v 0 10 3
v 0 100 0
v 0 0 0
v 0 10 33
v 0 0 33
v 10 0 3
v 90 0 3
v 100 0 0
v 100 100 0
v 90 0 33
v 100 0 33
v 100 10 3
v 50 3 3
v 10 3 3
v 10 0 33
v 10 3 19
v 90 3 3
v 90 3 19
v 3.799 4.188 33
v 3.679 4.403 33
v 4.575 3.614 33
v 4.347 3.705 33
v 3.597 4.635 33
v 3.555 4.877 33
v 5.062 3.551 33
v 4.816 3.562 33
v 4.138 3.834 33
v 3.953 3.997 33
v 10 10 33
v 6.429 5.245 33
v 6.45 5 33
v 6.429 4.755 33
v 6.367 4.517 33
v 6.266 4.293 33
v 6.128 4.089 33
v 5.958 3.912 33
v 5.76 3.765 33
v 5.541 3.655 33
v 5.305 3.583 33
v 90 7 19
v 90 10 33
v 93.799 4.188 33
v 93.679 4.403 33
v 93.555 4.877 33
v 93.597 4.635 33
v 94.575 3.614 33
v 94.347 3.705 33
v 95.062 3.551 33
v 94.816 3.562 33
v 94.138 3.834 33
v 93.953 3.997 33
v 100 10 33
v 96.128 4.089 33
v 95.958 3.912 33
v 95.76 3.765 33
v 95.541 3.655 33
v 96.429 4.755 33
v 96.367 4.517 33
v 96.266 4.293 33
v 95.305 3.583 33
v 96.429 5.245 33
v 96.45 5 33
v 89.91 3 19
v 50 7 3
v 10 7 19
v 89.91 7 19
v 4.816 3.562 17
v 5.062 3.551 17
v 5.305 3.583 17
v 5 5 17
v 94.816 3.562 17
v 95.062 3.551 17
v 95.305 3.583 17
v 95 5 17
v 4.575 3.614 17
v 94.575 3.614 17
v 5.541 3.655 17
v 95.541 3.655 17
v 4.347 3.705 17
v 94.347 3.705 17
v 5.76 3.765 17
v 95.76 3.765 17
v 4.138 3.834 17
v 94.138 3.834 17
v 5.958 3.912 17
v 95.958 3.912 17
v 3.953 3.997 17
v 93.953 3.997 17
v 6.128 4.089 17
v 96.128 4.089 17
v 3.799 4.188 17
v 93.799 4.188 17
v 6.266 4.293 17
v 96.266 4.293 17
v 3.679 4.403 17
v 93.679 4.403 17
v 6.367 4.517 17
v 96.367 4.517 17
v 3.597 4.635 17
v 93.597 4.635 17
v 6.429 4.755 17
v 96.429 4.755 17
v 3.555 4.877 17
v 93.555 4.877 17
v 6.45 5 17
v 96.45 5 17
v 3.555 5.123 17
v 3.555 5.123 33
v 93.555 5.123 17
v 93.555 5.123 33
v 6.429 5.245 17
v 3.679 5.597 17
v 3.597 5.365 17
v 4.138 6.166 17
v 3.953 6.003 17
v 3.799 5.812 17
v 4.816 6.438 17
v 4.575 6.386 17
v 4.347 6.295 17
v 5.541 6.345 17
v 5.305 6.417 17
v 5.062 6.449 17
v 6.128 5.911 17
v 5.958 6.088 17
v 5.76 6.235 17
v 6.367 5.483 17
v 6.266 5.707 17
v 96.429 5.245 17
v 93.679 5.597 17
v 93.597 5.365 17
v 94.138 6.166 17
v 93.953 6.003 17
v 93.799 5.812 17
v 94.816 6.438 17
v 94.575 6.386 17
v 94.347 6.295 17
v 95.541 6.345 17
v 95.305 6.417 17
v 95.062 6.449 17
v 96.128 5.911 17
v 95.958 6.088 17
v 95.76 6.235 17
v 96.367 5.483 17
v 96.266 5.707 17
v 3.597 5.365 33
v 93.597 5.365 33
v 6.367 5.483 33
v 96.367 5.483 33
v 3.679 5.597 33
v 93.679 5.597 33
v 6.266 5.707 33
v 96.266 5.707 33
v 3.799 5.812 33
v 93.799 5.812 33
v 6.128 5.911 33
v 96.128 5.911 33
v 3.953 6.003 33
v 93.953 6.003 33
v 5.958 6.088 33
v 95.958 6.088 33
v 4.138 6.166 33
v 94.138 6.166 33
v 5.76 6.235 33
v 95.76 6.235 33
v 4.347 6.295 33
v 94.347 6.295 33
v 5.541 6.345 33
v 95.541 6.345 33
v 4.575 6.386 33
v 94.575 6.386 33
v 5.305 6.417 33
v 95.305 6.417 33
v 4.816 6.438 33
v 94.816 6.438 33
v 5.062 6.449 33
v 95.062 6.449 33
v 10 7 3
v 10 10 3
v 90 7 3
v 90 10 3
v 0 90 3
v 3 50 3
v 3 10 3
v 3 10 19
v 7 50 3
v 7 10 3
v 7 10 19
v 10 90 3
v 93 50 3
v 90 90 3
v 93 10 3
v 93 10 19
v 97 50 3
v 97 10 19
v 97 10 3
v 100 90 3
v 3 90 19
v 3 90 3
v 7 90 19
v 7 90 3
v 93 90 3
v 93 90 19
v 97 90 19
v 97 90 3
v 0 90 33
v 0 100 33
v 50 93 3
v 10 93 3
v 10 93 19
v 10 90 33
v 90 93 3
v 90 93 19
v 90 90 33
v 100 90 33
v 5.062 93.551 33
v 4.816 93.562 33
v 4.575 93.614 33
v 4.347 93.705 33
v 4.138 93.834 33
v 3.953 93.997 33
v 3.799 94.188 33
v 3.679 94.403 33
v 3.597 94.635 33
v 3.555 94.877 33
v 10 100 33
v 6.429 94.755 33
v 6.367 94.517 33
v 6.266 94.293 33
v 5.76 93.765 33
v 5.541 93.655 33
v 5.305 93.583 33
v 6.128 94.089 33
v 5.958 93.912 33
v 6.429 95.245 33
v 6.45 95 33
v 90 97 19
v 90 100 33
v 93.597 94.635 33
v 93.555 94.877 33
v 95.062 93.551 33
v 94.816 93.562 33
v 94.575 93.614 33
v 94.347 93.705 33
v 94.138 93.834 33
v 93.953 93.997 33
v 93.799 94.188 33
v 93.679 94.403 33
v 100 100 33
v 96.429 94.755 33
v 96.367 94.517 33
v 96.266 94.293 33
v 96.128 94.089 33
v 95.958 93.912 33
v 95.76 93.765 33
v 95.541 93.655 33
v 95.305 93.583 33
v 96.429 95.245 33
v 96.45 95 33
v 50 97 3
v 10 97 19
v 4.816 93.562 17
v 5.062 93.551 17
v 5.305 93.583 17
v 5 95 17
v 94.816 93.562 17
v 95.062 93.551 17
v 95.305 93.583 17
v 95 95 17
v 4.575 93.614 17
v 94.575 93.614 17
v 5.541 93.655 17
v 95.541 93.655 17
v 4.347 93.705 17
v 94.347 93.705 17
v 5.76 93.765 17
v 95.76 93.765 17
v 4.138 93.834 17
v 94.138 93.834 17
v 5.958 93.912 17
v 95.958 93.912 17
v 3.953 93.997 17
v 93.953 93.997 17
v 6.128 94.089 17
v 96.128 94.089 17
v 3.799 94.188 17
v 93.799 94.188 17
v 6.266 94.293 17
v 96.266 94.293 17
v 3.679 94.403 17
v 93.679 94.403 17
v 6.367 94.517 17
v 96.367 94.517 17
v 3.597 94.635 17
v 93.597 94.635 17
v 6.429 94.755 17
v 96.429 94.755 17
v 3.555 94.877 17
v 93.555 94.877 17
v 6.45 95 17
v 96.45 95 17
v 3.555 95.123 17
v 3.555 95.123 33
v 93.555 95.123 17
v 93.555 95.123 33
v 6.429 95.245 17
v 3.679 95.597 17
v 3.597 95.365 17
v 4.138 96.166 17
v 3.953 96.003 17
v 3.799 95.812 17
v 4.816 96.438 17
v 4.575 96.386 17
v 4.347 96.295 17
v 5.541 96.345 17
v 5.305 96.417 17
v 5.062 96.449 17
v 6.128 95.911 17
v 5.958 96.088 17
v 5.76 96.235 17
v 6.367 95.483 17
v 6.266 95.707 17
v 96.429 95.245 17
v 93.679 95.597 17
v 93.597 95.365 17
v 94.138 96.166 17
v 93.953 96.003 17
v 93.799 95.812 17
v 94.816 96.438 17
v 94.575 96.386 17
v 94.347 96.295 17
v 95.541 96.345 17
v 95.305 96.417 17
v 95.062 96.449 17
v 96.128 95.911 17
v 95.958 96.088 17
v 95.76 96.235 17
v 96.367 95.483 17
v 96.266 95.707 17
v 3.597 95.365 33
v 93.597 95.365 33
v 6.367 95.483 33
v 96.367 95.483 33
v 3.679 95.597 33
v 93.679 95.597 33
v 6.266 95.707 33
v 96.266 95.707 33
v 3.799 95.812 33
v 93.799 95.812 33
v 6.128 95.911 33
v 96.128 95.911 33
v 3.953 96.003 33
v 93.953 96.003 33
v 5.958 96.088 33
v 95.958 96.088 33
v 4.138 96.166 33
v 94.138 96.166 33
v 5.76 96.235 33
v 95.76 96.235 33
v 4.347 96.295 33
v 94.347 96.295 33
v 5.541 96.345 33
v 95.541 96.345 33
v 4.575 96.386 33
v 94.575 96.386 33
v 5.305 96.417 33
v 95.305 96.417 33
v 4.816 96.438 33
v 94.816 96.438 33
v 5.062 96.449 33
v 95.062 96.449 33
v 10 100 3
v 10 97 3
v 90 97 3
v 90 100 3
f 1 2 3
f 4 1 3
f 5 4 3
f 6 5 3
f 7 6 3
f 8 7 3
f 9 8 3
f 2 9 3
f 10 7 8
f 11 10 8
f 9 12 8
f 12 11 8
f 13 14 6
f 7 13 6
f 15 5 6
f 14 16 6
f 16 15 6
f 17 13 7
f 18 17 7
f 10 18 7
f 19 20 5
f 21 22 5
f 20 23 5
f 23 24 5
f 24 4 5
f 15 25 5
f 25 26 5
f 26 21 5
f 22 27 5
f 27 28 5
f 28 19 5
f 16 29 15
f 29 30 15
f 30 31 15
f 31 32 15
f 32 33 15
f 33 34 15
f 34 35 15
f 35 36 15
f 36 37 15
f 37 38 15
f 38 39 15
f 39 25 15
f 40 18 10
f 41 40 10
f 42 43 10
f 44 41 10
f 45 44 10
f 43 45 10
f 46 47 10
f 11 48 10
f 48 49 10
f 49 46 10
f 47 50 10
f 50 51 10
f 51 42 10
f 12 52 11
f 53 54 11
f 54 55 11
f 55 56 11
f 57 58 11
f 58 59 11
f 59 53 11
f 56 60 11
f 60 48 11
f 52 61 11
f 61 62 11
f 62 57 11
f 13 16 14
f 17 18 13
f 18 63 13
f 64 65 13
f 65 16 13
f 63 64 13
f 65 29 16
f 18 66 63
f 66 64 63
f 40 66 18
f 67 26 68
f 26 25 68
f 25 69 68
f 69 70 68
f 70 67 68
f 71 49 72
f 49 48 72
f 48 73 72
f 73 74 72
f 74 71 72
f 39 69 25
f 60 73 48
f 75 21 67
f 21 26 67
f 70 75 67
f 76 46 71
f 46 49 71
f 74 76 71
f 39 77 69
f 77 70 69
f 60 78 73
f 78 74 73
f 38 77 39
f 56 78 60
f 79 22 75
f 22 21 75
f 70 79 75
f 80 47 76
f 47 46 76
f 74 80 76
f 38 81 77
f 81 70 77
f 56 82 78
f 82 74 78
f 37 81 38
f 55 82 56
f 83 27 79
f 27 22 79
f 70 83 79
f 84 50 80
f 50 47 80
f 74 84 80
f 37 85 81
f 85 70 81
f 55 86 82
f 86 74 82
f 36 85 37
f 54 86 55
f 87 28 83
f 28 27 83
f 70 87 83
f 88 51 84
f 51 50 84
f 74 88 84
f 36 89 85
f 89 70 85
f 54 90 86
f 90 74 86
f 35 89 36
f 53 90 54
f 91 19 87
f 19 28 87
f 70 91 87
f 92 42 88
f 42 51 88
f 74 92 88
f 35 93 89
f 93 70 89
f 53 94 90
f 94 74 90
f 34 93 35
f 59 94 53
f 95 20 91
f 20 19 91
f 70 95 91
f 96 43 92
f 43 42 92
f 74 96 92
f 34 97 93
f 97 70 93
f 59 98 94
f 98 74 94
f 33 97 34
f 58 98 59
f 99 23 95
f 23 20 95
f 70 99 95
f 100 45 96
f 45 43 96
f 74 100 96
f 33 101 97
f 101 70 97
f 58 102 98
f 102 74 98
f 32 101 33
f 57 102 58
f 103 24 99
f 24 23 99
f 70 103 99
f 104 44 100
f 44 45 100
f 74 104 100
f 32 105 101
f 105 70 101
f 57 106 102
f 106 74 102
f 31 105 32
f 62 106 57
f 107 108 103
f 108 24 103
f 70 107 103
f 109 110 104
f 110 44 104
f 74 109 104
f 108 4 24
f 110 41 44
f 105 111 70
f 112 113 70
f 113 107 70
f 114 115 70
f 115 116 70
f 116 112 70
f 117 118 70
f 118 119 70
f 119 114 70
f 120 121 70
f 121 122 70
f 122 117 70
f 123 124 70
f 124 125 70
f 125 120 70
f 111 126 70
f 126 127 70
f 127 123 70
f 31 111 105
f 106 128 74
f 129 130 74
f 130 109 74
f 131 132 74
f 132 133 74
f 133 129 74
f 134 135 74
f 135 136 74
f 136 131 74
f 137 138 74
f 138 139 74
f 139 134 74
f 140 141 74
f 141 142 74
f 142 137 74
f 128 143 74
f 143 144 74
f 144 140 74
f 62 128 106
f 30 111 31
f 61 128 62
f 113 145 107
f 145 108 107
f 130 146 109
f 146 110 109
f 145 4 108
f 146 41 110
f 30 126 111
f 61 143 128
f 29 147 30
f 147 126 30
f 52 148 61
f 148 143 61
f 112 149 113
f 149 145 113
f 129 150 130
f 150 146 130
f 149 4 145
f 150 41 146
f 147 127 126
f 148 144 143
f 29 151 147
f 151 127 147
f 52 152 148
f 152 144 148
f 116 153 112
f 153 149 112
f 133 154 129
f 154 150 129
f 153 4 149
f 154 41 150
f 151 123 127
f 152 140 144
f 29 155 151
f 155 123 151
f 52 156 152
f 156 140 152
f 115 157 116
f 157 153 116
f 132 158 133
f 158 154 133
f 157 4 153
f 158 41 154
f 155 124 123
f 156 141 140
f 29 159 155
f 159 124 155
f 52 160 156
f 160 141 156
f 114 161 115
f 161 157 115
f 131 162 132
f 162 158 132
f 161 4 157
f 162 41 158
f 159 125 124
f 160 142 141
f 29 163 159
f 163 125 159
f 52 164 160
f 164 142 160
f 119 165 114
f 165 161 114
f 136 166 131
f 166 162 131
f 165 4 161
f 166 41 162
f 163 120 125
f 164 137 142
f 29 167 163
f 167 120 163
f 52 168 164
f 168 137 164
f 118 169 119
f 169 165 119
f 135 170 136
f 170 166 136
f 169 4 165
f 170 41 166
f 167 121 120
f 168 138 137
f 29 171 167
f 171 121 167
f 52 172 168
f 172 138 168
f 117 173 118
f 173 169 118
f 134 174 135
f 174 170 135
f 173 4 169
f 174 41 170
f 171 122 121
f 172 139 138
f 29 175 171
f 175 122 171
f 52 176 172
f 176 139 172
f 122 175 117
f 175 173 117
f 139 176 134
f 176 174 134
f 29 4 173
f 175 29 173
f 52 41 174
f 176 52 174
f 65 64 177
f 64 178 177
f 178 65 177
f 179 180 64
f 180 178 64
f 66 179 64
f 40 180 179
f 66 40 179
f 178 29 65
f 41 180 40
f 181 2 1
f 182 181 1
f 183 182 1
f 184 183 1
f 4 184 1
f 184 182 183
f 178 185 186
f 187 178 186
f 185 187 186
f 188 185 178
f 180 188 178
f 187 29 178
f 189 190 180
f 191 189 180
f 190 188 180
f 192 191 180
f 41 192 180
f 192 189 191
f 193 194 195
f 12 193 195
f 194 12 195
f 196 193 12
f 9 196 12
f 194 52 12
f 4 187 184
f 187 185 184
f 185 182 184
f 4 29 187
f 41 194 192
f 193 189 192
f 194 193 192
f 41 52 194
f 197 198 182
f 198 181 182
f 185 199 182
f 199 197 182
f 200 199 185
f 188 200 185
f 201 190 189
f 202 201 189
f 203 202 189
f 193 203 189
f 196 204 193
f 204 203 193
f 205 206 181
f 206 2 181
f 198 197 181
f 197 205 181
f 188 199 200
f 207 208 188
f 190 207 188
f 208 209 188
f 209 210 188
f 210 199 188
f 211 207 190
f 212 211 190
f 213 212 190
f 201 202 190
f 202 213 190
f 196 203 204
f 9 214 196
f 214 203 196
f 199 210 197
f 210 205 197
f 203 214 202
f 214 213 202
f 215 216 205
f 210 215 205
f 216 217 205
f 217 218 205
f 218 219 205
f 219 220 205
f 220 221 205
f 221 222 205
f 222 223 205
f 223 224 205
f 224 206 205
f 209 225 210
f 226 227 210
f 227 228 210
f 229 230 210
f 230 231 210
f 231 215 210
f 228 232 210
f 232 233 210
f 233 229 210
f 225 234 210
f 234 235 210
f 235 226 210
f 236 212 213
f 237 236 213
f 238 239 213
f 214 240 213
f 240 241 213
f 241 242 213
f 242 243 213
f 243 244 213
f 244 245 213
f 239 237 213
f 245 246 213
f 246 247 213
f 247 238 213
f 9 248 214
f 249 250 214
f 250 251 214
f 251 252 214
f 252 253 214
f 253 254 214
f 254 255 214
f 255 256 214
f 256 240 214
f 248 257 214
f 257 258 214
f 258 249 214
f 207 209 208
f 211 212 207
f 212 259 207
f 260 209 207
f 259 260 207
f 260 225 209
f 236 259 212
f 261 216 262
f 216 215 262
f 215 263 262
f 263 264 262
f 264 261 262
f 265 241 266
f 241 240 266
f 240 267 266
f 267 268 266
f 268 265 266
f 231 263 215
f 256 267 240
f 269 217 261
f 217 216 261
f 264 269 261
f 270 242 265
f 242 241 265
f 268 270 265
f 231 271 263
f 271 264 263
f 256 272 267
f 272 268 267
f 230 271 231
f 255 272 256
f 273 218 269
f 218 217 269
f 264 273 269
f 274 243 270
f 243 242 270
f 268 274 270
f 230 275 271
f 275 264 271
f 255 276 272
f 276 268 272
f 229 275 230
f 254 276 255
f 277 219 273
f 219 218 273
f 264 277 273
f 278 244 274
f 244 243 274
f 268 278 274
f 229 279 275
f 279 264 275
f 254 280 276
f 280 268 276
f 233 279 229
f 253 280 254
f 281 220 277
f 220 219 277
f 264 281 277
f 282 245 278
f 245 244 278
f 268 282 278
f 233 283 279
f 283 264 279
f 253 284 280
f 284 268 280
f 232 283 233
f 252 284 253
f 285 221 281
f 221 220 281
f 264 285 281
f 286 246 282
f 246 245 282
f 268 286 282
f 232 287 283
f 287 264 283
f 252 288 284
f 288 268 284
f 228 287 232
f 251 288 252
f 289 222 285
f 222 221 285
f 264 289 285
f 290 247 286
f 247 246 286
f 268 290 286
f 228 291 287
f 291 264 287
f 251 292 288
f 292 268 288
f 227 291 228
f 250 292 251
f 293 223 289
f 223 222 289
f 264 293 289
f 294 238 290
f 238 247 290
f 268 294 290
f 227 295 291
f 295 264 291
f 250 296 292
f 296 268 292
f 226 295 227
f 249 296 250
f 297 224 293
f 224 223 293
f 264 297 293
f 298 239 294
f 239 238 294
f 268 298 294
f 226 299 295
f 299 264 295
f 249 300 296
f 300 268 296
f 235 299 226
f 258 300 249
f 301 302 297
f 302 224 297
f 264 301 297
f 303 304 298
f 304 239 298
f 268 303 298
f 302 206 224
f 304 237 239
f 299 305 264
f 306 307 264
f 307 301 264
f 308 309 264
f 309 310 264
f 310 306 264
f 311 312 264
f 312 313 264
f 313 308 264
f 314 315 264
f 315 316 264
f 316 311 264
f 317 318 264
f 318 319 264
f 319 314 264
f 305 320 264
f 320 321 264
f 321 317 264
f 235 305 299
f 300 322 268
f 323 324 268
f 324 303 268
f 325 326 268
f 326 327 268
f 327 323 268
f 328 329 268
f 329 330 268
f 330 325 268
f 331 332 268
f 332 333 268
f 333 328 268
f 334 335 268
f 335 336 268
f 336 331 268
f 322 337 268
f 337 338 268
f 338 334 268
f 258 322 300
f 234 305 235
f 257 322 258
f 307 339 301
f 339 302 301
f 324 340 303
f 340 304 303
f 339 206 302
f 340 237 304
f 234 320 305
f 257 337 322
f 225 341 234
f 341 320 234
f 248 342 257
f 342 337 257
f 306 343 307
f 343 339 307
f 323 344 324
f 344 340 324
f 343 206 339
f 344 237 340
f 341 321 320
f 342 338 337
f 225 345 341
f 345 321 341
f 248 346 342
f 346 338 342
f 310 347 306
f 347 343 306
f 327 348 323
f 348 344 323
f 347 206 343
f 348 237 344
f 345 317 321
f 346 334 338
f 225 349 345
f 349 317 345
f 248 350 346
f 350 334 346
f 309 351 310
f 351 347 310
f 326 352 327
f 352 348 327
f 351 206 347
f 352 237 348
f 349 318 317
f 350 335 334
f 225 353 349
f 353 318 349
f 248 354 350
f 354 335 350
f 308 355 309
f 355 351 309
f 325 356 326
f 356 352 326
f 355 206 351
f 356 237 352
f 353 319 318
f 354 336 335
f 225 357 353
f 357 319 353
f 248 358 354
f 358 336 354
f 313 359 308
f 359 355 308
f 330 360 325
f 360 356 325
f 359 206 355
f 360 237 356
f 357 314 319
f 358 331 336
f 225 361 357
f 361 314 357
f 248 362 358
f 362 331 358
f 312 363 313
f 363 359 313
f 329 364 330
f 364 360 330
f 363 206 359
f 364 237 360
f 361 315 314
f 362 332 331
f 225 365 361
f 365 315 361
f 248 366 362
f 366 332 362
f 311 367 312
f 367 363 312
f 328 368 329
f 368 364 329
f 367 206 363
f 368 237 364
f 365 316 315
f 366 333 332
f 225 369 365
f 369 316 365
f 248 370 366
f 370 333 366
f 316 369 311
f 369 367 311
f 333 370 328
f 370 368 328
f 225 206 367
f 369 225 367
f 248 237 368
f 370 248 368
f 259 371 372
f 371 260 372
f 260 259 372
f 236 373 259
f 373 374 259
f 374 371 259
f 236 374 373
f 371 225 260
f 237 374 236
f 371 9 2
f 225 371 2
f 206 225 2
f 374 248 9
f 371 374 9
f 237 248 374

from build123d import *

# Parameters (mm, degrees)
EXTRUDE_3_DEPTH     = 3
SKETCH_1_4_W        = 10
SKETCH_1_4_H        = 10
EXTRUDE_4_DEPTH     = 33
CUT_EXTRUDE_1_DEPTH = 16
CUT_EXTRUDE_2_DEPTH = 16
CUT_EXTRUDE_3_DEPTH = 16
CUT_EXTRUDE_4_DEPTH = 16
SKETCH_7_W          = 4
SKETCH_7_H          = 80
SKETCH_7_W_2        = 80
SKETCH_7_H_2        = 4
EXTRUDE_5_DEPTH     = 16
CUT_EXTRUDE_5_DEPTH = 16
CUT_EXTRUDE_6_DEPTH = 16
CUT_EXTRUDE_7_DEPTH = 16
CUT_EXTRUDE_8_DEPTH = 16


with BuildPart() as part:
    # 草图1 → 凸台-拉伸3 (new body)
    with BuildSketch(Plane.XY):
        Polygon((10, 10), (10, 0), (90, 0), (90, 10), (100, 10), (100, 90), (90, 90), (90, 100), (10, 100), (10, 90), (0, 90), (0, 10), align=None)
    extrude(amount=EXTRUDE_3_DEPTH)

    # 草图1<4> → 凸台-拉伸4 (add)
    with BuildSketch(Plane.XY):
        with Locations((5, 5)):
            Rectangle(SKETCH_1_4_W, SKETCH_1_4_H)
        with Locations((95, 5)):
            Rectangle(SKETCH_1_4_W, SKETCH_1_4_H)
        with Locations((5, 95)):
            Rectangle(SKETCH_1_4_W, SKETCH_1_4_H)
        with Locations((95, 95)):
            Rectangle(SKETCH_1_4_W, SKETCH_1_4_H)
    extrude(amount=EXTRUDE_4_DEPTH)

    # 草图3 → 切除-拉伸1 (cut)
    with BuildSketch(Plane.XY.offset(33)):
        with BuildLine():
            ThreePointArc((5, 96.45), (3.974695167, 93.974695167), (6.45, 95))
            ThreePointArc((6.45, 95), (6.025304833, 96.025304833), (5, 96.45))
        make_face()
    extrude(amount=-CUT_EXTRUDE_1_DEPTH, mode=Mode.SUBTRACT)

    # 草图4 → 切除-拉伸2 (cut)
    with BuildSketch(Plane.XY.offset(33)):
        with BuildLine():
            ThreePointArc((95, 96.45), (93.974695167, 93.974695167), (96.45, 95))
            ThreePointArc((96.45, 95), (96.025304833, 96.025304833), (95, 96.45))
        make_face()
    extrude(amount=-CUT_EXTRUDE_2_DEPTH, mode=Mode.SUBTRACT)

    # 草图5 → 切除-拉伸3 (cut)
    with BuildSketch(Plane.XY.offset(33)):
        with BuildLine():
            ThreePointArc((5, 3.55), (6.025304833, 3.974695167), (6.45, 5))
            ThreePointArc((6.45, 5), (3.974695167, 6.025304833), (5, 3.55))
        make_face()
    extrude(amount=-CUT_EXTRUDE_3_DEPTH, mode=Mode.SUBTRACT)

    # 草图5<3> → 切除-拉伸4 (cut)
    with BuildSketch(Plane.XY.offset(33)):
        with BuildLine():
            ThreePointArc((95, 6.45), (93.974695167, 3.974695167), (96.45, 5))
            ThreePointArc((96.45, 5), (96.025304833, 6.025304833), (95, 6.45))
        make_face()
    extrude(amount=-CUT_EXTRUDE_4_DEPTH, mode=Mode.SUBTRACT)

    # 草图7 → 凸台-拉伸5 (add)
    with BuildSketch(Plane.XY.offset(3)):
        with Locations((5, 50)):
            Rectangle(SKETCH_7_W, SKETCH_7_H)
        with Locations((50, 95)):
            Rectangle(SKETCH_7_W_2, SKETCH_7_H_2)
        with Locations((50, 5)):
            Rectangle(SKETCH_7_W_2, SKETCH_7_H_2)
        with Locations((95, 50)):
            Rectangle(SKETCH_7_W, SKETCH_7_H)
    extrude(amount=EXTRUDE_5_DEPTH)

    # 草图8 → 切除-拉伸5 (cut)
    with BuildSketch(Plane(origin=(0, 7, 0), x_dir=(1, 0, 0), z_dir=(0, 1, 0))):
        Polygon((89.910217028, -19), (50, -3), (10, -19), align=None)
    extrude(amount=-CUT_EXTRUDE_5_DEPTH, mode=Mode.SUBTRACT)

    # 草图9 → 切除-拉伸6 (cut)
    with BuildSketch(Plane(origin=(7, 0, 0), x_dir=(0, 0, -1), z_dir=(1, 0, 0))):
        Polygon((-19, 10), (-3, 50), (-19, 90), align=None)
    extrude(amount=-CUT_EXTRUDE_6_DEPTH, mode=Mode.SUBTRACT)

    # 草图10 → 切除-拉伸7 (cut)
    with BuildSketch(Plane.XZ.offset(-93)):
        Polygon((10, 19), (50, 3), (90, 19), align=None)
    extrude(amount=-CUT_EXTRUDE_7_DEPTH, mode=Mode.SUBTRACT)

    # 草图11 → 切除-拉伸8 (cut)
    with BuildSketch(Plane.ZY.offset(-93)):
        Polygon((19, 90), (3, 50), (19, 10), align=None)
    extrude(amount=-CUT_EXTRUDE_8_DEPTH, mode=Mode.SUBTRACT)


solid = part.part
